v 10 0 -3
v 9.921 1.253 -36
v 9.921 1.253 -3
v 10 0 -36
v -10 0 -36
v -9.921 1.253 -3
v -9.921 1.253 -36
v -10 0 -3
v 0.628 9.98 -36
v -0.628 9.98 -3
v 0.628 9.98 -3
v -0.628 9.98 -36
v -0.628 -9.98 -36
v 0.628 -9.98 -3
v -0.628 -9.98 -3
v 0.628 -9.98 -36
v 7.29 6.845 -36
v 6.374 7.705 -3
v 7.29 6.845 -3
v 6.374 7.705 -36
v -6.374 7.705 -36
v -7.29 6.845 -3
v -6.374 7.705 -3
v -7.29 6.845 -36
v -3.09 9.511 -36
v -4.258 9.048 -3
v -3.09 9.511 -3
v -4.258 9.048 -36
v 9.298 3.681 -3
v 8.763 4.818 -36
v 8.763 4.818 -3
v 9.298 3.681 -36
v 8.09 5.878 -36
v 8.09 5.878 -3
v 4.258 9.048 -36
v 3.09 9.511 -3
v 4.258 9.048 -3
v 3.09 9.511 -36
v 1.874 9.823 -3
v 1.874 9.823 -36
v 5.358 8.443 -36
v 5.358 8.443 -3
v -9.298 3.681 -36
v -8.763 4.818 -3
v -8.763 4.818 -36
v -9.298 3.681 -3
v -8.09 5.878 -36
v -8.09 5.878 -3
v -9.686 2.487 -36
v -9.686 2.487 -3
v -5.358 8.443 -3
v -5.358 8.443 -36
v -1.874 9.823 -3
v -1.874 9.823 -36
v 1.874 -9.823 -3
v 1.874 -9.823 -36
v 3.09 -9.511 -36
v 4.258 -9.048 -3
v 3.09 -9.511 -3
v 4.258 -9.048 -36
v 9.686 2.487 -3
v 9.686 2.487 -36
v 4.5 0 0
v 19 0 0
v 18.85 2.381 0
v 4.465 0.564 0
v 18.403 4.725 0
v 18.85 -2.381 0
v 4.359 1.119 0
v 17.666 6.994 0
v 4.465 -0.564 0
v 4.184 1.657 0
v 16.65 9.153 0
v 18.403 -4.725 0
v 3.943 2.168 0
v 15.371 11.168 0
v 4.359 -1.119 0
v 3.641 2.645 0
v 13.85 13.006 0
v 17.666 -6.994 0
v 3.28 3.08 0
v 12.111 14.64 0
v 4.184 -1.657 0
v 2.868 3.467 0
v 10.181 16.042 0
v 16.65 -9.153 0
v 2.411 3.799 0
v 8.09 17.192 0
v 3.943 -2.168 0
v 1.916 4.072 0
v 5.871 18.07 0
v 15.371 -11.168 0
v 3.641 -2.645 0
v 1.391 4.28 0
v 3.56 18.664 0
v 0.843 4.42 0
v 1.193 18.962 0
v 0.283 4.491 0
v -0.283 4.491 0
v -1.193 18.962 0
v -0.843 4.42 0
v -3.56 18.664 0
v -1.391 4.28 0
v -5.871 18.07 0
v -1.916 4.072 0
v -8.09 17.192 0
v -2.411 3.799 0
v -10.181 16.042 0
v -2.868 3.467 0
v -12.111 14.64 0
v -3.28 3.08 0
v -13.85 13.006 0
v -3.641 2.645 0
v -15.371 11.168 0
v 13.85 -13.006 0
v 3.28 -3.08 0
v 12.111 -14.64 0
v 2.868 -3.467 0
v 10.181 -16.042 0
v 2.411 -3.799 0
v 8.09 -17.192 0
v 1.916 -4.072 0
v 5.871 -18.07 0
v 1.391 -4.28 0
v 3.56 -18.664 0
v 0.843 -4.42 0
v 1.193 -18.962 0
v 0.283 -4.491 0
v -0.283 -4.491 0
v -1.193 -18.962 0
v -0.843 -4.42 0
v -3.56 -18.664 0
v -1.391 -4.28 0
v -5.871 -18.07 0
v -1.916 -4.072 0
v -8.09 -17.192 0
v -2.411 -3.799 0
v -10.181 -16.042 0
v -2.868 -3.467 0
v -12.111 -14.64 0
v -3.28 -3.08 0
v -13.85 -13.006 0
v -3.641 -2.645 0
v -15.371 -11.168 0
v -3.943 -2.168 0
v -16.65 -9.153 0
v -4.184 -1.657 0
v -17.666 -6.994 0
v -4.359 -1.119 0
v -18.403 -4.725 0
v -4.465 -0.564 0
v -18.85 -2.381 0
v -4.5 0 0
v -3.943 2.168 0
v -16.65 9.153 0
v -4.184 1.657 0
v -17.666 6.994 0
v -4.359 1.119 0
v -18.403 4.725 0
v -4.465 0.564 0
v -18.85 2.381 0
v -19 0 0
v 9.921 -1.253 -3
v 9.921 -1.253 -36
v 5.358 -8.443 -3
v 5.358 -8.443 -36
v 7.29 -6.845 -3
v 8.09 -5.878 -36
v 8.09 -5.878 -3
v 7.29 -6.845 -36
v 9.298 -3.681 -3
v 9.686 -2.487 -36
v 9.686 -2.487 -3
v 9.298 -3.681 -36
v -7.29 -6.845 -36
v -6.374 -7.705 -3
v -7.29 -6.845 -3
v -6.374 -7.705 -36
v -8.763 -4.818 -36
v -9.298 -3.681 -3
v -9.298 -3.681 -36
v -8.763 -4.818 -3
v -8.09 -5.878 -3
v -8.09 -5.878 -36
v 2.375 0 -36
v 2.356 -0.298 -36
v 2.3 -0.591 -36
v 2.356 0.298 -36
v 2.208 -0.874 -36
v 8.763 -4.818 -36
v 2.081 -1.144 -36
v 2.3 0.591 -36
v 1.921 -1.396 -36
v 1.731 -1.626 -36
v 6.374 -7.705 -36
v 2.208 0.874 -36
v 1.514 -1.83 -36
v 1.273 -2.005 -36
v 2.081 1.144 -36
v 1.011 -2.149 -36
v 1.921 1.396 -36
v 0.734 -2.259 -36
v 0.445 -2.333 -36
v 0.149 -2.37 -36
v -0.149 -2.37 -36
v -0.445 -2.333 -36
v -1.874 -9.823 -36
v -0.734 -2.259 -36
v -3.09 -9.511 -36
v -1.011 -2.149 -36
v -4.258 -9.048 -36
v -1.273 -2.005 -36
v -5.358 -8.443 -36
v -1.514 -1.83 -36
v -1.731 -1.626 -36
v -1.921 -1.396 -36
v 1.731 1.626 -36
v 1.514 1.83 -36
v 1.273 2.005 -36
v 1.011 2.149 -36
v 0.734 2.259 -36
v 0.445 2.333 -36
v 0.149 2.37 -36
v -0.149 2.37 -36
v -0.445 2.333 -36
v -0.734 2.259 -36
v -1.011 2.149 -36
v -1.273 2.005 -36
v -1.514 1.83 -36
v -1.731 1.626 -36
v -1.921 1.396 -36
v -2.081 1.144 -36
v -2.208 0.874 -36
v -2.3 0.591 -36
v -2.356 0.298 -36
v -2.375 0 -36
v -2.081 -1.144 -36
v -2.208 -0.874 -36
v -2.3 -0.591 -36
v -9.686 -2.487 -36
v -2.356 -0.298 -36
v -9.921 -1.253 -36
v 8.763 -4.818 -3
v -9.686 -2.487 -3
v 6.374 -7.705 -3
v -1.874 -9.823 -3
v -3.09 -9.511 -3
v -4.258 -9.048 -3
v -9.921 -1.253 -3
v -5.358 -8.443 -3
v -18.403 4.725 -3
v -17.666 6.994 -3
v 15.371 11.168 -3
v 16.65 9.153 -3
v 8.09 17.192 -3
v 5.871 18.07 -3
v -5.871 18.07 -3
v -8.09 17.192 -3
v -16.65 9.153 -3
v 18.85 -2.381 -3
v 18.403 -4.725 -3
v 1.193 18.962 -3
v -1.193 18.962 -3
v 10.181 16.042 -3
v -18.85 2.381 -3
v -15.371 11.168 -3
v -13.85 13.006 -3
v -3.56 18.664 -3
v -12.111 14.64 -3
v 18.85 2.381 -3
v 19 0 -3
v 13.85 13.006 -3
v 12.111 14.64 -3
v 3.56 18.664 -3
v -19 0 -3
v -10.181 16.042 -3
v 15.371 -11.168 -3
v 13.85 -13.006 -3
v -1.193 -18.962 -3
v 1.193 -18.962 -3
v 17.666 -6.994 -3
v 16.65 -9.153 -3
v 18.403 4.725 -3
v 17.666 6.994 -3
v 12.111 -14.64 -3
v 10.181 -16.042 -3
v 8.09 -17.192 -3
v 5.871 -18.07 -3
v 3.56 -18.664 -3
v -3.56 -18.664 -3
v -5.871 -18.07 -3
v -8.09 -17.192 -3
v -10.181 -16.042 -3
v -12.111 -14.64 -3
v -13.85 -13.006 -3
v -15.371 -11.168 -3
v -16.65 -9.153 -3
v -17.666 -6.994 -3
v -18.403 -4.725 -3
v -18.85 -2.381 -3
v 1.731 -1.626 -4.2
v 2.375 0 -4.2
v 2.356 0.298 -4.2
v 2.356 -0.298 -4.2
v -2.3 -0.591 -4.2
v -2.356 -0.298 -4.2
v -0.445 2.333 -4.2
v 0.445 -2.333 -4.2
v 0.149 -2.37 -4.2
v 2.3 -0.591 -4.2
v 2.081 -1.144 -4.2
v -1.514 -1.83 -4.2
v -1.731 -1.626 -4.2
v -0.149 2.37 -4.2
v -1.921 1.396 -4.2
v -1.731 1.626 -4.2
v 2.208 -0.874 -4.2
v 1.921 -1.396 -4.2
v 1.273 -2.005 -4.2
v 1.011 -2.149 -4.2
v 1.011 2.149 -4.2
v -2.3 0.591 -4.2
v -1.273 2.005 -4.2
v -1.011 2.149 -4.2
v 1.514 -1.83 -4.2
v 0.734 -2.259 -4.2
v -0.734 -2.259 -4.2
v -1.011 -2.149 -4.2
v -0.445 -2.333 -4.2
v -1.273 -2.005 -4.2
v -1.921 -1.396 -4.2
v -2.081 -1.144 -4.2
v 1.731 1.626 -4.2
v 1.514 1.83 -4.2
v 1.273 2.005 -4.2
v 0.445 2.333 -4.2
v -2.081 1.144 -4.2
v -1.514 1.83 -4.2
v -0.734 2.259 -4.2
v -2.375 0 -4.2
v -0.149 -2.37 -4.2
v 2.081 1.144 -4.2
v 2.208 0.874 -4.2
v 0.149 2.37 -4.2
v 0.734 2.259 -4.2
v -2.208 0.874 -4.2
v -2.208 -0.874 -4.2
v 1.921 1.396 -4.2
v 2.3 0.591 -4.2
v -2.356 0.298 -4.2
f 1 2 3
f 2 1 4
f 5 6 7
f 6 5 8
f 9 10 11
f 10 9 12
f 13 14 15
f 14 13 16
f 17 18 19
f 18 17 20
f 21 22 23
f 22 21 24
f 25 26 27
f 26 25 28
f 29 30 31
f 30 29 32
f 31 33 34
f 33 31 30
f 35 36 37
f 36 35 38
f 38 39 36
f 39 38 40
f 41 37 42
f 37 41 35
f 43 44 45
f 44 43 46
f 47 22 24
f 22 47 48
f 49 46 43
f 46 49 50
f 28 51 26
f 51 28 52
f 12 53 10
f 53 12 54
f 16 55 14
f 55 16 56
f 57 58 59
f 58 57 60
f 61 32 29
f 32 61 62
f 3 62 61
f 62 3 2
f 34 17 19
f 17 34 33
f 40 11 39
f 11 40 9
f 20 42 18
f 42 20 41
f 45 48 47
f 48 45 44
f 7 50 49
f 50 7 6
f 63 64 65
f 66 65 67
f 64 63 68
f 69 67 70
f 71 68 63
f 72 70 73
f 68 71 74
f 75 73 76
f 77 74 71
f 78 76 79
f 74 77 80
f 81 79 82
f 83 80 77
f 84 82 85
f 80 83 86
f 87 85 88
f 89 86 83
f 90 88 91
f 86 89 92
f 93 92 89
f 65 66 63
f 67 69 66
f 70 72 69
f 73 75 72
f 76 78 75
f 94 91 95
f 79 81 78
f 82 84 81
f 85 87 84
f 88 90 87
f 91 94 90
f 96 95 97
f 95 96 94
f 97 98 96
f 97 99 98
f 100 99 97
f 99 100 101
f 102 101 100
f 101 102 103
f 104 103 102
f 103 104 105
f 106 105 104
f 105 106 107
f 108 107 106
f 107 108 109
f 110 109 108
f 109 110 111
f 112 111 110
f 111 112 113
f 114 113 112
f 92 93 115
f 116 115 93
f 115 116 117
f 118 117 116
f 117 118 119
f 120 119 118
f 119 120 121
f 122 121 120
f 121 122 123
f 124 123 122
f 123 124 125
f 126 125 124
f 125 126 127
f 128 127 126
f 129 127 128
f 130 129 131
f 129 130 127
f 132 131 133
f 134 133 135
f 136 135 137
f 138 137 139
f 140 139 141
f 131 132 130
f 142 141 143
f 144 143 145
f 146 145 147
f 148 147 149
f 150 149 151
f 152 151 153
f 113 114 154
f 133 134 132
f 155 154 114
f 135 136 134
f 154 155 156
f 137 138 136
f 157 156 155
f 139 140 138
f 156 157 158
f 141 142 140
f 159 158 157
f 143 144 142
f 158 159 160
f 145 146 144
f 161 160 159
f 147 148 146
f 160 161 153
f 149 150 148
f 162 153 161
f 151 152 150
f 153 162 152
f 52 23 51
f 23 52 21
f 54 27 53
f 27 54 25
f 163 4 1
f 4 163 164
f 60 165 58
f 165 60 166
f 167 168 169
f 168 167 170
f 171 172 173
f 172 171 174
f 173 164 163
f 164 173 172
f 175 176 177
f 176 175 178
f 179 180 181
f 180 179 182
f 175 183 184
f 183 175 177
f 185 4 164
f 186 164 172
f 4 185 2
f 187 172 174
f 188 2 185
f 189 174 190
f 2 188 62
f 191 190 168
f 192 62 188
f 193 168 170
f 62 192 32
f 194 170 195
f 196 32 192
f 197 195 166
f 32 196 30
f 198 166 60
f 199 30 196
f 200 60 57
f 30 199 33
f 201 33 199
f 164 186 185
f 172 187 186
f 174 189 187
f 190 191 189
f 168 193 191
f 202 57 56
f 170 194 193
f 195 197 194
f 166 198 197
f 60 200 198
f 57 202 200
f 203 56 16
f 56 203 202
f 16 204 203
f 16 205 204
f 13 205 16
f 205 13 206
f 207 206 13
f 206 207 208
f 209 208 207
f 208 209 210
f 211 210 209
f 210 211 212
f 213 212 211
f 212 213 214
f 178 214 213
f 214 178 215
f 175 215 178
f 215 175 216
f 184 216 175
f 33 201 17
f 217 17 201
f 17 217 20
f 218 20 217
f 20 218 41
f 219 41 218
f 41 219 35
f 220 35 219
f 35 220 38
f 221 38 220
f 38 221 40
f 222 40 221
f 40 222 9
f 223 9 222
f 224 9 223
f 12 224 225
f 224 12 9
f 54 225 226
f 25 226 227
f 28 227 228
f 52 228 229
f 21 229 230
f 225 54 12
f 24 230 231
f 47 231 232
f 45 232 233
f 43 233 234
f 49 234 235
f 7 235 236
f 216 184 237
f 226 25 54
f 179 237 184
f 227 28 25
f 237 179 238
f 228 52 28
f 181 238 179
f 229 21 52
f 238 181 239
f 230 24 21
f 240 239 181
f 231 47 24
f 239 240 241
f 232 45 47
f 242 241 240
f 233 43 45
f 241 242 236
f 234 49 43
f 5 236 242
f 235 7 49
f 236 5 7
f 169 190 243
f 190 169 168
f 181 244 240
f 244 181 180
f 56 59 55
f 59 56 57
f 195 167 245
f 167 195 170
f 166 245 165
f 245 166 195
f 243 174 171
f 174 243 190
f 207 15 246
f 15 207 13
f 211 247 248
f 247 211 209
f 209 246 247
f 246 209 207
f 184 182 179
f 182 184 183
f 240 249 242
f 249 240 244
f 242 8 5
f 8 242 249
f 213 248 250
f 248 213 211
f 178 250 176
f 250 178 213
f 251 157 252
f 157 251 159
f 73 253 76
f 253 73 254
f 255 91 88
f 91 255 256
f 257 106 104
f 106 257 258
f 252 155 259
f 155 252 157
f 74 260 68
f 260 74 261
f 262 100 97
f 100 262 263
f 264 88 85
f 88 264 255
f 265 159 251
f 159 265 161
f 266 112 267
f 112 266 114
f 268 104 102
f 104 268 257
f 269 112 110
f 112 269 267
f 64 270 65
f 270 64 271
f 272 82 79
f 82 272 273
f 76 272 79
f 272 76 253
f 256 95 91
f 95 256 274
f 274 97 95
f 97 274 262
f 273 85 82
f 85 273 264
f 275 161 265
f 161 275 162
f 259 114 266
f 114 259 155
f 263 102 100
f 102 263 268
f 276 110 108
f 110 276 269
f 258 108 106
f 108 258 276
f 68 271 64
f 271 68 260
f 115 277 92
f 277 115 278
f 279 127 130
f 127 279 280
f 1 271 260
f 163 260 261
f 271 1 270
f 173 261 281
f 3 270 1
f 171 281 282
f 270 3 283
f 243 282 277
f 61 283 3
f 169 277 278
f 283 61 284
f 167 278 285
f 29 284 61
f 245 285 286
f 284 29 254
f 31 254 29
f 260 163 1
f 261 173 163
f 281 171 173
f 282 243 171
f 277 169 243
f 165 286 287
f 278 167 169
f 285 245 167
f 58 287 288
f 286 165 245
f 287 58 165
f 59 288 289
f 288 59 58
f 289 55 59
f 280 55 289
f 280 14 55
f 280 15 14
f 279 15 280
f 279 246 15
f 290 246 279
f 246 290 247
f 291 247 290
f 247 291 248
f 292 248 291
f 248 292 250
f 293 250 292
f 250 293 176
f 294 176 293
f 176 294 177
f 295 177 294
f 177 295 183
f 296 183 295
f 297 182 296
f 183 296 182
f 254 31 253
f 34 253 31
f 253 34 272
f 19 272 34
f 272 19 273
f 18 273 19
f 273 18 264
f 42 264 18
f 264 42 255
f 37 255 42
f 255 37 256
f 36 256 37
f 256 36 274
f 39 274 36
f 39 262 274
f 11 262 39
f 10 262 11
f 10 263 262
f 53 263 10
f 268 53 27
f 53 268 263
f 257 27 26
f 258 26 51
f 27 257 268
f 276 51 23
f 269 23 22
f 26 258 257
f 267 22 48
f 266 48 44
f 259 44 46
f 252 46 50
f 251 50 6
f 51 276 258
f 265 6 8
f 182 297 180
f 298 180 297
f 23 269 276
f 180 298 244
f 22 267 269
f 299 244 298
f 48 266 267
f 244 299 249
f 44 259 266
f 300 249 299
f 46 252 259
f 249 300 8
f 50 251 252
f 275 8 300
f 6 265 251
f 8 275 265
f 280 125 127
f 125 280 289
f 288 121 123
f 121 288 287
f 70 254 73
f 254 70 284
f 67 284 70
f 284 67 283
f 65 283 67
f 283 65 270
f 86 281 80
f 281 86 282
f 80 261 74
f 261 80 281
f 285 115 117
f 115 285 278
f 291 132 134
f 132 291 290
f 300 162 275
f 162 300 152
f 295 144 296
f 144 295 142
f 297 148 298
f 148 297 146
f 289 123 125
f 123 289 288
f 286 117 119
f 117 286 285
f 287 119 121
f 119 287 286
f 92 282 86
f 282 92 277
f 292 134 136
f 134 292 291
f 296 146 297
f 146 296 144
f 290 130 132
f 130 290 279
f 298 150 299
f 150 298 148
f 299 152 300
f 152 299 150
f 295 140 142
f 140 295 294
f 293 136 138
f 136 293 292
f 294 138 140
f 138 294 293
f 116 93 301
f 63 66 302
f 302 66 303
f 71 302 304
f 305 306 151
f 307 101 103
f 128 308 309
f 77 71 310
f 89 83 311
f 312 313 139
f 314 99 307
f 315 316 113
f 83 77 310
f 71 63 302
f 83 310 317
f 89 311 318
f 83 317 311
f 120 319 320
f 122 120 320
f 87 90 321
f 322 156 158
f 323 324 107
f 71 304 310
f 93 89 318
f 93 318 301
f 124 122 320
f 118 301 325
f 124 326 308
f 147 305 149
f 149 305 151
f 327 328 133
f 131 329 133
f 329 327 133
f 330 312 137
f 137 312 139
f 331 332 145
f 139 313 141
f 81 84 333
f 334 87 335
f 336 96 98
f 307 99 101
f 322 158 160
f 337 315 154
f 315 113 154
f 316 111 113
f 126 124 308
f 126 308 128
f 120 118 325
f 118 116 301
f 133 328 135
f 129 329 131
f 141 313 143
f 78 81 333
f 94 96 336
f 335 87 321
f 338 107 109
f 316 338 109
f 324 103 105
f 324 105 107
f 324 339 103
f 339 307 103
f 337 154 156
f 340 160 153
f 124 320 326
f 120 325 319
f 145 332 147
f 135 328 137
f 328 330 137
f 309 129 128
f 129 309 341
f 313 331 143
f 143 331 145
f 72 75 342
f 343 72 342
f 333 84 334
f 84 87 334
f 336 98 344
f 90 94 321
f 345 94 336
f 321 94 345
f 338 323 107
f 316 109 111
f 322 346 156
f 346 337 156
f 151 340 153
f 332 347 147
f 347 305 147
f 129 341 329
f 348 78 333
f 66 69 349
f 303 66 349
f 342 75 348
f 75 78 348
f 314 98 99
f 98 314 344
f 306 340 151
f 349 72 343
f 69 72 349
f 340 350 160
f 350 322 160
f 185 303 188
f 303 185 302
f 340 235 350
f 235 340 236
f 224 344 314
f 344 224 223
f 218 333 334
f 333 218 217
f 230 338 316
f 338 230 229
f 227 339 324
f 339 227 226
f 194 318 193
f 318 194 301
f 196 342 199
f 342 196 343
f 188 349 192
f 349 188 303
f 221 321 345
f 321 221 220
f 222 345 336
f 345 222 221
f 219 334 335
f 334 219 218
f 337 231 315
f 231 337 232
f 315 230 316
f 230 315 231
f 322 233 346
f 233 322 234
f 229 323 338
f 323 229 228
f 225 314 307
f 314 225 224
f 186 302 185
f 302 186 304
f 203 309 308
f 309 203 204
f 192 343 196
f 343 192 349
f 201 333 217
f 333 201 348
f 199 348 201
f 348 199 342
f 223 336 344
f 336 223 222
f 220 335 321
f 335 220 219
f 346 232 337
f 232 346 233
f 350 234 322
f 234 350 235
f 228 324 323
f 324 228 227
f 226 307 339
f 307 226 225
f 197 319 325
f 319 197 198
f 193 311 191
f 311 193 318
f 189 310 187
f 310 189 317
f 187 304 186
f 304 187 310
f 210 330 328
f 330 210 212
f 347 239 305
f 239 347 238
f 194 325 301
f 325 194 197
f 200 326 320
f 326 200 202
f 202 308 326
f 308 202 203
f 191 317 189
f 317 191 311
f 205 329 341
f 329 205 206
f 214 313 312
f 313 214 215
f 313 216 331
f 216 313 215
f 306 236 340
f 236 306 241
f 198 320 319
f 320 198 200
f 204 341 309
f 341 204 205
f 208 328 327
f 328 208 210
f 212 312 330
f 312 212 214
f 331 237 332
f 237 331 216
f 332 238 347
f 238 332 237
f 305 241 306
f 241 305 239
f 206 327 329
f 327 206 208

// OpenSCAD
$fn = 50;


difference() {
	union() {
		translate(v = [0, 0, -36.0000000000]) {
			cylinder(h = 36, r = 10.0000000000);
		}
		translate(v = [0, 0, -3.0000000000]) {
			cylinder(h = 3, r = 19.0000000000);
		}
	}
	union() {
		translate(v = [0, 0, 0]) {
			rotate(a = [0, 0, 0]) {
				difference() {
					union() {
						#translate(v = [0, 0, -36.0000000000]) {
							cylinder(h = 36, r = 2.2500000000);
						}
						#translate(v = [0, 0, -4.2000000000]) {
							cylinder(h = 4.2000000000, r = 10.0000000000, r1 = 2.3750000000, r2 = 4.5000000000);
						}
						#translate(v = [0, 0, -36.0000000000]) {
							cylinder(h = 36, r = 2.3750000000);
						}
						#translate(v = [0, 0, -36.0000000000]) {
							cylinder(h = 36, r = 2.2500000000);
						}
					}
					union();
				}
			}
		}
	}
}
